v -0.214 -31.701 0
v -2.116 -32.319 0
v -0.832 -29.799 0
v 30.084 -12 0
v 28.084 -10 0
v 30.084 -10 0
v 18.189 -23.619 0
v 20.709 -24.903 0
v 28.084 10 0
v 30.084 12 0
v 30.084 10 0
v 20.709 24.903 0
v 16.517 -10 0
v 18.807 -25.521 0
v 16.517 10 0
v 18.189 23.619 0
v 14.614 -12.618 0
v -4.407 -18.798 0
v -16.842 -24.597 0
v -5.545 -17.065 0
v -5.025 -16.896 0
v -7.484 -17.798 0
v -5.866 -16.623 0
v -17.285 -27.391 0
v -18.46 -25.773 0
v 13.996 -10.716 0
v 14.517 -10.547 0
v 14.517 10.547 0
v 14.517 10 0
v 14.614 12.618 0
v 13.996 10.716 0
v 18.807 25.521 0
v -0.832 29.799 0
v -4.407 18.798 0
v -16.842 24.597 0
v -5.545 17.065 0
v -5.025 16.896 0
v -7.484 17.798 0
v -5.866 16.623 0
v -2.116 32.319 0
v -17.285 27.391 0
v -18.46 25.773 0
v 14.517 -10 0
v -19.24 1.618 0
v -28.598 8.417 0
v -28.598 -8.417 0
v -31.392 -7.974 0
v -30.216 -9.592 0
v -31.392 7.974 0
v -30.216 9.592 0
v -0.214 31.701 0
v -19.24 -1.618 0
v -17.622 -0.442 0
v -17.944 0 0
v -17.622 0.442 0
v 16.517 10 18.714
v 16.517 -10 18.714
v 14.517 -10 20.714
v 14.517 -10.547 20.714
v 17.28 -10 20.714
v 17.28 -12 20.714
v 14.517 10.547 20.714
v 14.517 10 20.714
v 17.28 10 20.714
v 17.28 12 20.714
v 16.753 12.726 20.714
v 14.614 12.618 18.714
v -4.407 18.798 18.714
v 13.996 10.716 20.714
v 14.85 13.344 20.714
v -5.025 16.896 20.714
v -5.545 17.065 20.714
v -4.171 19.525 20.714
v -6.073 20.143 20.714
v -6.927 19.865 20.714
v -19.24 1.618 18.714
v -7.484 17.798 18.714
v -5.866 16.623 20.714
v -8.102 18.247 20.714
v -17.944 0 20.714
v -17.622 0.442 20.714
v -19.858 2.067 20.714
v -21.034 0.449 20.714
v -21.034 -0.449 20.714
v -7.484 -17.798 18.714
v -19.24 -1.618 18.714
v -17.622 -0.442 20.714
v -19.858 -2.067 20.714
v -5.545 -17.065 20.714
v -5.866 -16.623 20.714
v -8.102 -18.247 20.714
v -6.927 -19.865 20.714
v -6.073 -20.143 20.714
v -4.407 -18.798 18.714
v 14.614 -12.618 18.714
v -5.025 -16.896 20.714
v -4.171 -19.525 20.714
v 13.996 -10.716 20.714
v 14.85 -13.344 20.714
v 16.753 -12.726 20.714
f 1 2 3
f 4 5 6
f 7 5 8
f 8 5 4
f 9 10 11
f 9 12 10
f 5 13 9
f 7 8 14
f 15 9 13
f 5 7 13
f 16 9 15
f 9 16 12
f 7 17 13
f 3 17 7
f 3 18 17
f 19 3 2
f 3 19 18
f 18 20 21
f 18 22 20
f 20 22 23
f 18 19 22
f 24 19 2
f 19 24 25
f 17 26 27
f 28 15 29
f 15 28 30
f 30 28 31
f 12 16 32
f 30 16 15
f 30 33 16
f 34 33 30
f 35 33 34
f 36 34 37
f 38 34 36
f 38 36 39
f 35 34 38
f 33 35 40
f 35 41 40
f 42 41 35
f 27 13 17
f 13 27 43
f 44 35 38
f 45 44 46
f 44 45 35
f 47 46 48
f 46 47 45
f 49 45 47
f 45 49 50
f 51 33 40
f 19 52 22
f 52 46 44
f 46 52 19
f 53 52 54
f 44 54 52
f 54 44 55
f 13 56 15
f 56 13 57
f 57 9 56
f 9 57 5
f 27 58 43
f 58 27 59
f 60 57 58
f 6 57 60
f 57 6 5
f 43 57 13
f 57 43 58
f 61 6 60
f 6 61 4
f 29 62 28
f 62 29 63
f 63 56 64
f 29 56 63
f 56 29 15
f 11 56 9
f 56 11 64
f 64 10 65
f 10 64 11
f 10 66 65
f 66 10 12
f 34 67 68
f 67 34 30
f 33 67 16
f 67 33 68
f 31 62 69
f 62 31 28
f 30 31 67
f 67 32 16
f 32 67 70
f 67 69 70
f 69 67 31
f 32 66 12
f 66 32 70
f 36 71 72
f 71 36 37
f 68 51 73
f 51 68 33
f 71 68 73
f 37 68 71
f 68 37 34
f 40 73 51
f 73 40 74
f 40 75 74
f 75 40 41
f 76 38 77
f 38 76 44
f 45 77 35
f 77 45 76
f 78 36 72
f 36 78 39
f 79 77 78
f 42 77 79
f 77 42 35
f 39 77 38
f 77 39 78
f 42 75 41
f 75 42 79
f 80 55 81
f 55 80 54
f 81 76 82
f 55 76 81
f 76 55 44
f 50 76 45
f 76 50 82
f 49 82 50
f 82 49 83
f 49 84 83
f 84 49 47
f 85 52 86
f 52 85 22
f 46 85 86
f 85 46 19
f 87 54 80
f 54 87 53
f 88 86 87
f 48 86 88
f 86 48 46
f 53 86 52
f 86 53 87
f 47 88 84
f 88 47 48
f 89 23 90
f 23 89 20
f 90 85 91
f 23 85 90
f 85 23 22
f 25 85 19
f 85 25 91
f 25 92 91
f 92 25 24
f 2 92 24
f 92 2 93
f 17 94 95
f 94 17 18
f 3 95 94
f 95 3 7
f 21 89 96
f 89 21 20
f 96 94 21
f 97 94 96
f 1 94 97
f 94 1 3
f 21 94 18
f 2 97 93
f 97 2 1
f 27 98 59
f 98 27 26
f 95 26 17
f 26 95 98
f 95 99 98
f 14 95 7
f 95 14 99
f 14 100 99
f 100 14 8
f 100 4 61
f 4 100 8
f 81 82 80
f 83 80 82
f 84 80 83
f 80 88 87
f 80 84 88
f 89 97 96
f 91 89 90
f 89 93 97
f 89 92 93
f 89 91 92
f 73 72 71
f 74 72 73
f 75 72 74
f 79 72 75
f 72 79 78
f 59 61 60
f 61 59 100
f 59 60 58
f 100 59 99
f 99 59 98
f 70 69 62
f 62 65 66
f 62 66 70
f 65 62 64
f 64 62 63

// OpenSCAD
interface_angle=31.72;
//connector_angle=90-interface_angle;

interface_width=20;
interface_height=22;

//groove on interface
interface_groove=2;//2;;

//groove on inside
inner_groove = 2;//2;

//groove on bottom
base_groove = 0;//2;

interface_spacing_width=2;//1;
sides=5;
sides_to_draw = sides;

//TODO
inner_wall_thickness = 0;//2
base_wall_thickness =0;

face_width=interface_width+(2*interface_spacing_width);
face_height=interface_height;//+(2*interface_spacing_height);//+(2*(interface_groove/tan(interface_angle)));

connector_height = face_height    * cos(interface_angle);
connector_width  = face_height     * sin(interface_angle);
echo("h/w", face_height, connector_width);
inner_radius     = (face_width/2) / sin(360/(sides*2));
inner_apothem    = (face_width/2) / tan(360/(sides*2));
//outer_radius   = inner_radius  + connector_width;
//outer_apothem  = inner_apothem + connector_width;
angle            = (360/sides);

//connector_thickness = connector_width+inner_wall_thickness;
//connector_depth = connector_height+interface_groove;
//groove_offset_y=connector_height-interface_groove;//-(cos(interface_angle)*interface_groove);
//groove_offset_x=0;//sin(interface_angle)*interface_groove;

//translate([-15,0,0])
connector();	


module connector(){
difference(){							
	for (i=[0:sides_to_draw-1]){
		rotate([0,0,i*angle]){	
			translate([/*inner_wall_thickness+*/inner_apothem,-face_width/2,0]){
        	      
				union(){
										strut_interface();
										translate([0, 0, 0]){
											color([0,1,0])channel();	
										}
										translate([0, interface_width+interface_spacing_width, 0]){
											color([0,0,1])channel();
										}
									corner_bevel();
								}
							
								//translate([connector_width-(interface_groove/tan(interface_angle)),0,0])rotate([0,-interface_angle,0])color([0,0,1])cube([1.5,20,20]);
			}
		}
	}
	translate([-50,-50,connector_height+2])cube([100,100,2]);

}
}

module strut_interface(){
	id = face_width;
	iw = 0;//inner_wall_thickness;
	ch = connector_height;
	cw = connector_width;
	echo("cw=",cw);
	echo("ch=",ch);
	echo("id=",id);
	echo("ih=",interface_height);
	bw = 0;//base_wall_thickness;
    //echo();
    interface_surface();
    inner_wall_surface();
    base_wall_surface();
    base_bevel_surface();
    module interface_surface(){
    	interfacePoints = [
        [  0,  0,  0 ],//0 
        [  0, id,  0 ],//1
				[ cw, id,  0 ],//2 
				[ cw,  0,  0 ],//3 	  
				[  0, id, ch ],//4
				[  0,  0, ch ]	//5
        ];     
        interfaceFaces = [
        [ 0, 1, 2, 3 ],
        [1,4,2],
        [ 1, 0, 5, 4 ],  
        [ 3, 5, 0 ],
        [ 3, 2, 4, 5 ],
        ];	
        polyhedron( interfacePoints, interfaceFaces );
    }
	
    module inner_wall_surface(){
    innerWallPoints=[
        [ -iw,  0,  0 ],
        [   0,  0,  0 ],
        [   0, id,  0 ],
        [ -iw, id,  0 ],
        [ -iw,  0, ch ],
        [   0,  0, ch ],
        [   0, id, ch ],
        [ -iw, id, ch ],
	]; 
	innerWallFaces = [
		[ 1, 0, 3, 2 ],
		[ 4, 0, 1, 5 ],
		[ 5, 1, 2, 6 ],
		[ 6, 2, 3, 7 ],
		[ 3, 0, 4, 7 ],
		[ 7, 4, 5, 6 ]
	]; 
    polyhedron( innerWallPoints, innerWallFaces );    
        }
    module base_wall_surface(){
    baseWallPoints =[
		[ 0,  0,   0 ],
		[  cw,  0,   0 ],
		[  cw, id,   0 ],
		[ 0, id,   0 ],
		[ 0,  0, -bw ],
		[  cw,  0, -bw ],
		[  cw, id, -bw ],
		[ 0, id, -bw ],
	];
	baseWallFaces =[
		[ 0, 1, 2, 3 ],
		[ 0, 4, 5, 1 ],
		[ 1, 5, 6, 2 ],
		[ 2, 6, 7, 3 ],
		[ 0, 3, 7, 4 ],
		[ 4, 7, 6, 5 ]		
	];
    polyhedron( baseWallPoints,  baseWallFaces );
    


    }
    module base_bevel_surface(){
    baseBevelPoints=[
        [ -iw,  0,  0 ],//0
        [   0,  0,  0 ],//1
        [   0, id,  0 ],//2
        [ -iw, id,  0 ],//3
        [   0,  0,  -bw ],//4
        [   0, id,  -bw ],//5
    ];
    baseBevelFaces=[
        [0,1,2,3],
        [2,1,4,5],
        [1,0,4],
        [3,2,5],
        [0,3,5,4]
    ];
    polyhedron( baseBevelPoints, baseBevelFaces );
    }
}




module channel(){
	  iw = 0;//inner_wall_thickness;
	  ch = connector_height;
    cw = connector_width;
	  bw = 0;//base_wall_thickness;
    bd = base_groove;
    id = interface_groove/tan(interface_angle);
		ih = cos(interface_angle)*interface_height;
    mw =interface_spacing_width;
   	fw = face_width-mw;
    ig=inner_groove;
		wh=bw-bd;
		bi=id/tan(90-interface_angle);
    
		mw=0;
		fw=interface_spacing_width;
//[ -14.63, 11.23, 18.94 ]		translate([connector_width,0,-2])cube([2,2,2]);
		translate([-inner_groove,0,-base_groove])cube([inner_groove,interface_spacing_width,base_groove]);
		
		translate([-inner_groove,0,connector_height])cube([inner_groove,interface_spacing_width,id]);
	
		if(inner_groove>0){
			inner_wall_cutout();
		}
		if(base_groove>0){
			base_wall_cutout();
		}
		if(interface_groove>0){
			interface_cutout();
    }
		
    module interface_cutout(){
			
			//echo((ch-id)/cos(interface_angle));
    	interfacePoints = [
            [ cw+bi, fw,  0  ],//2 ->0
            [ cw+bi, mw,  0  ],//3 - 1
            [  0,    fw,  ch+id ],//4 - 2
            [  0,    mw,  ch+id ],	//5 -3
            [ cw,    fw,  0  ],//2 ->0
            [ cw,    mw,  0  ],//3 - 1
            [  0,    fw,  ch ],//4 - 2
            [  0,    mw,  ch ]	//5 -3
        ];     
        interfaceFaces = [
            [ 1, 0, 2, 3 ],
            [ 7,6,4,5 ],
            [ 7,6,4,5 ],
            [1, 5, 4, 0],
            [2,6,7,3],
            [4,6,2,0],
            [7,5,1,3]
        ];	
				polyhedron( interfacePoints, interfaceFaces );
		}

    module inner_wall_cutout(){
			translate([-ig,mw,-bw])cube([ig,fw,bw+ch]);
    }
    module base_wall_cutout(){
			translate([-iw,mw,-bw-bd])cube([cw+iw,fw,bd]);
		} 
}
module _cutout(){
	  iw = inner_wall_thickness;
	  ch = connector_height;
    cw = connector_width;
	  bw = base_wall_thickness;
    bd = base_groove;
    id = interface_groove/sin(interface_angle);
		ih=cos(interface_angle)*interface_height;
    mw =interface_spacing_width;
   	fw = face_width-mw;
    ig=inner_groove;
		wh=bw-bd;
    union(){
		if(inner_groove>0){
			inner_wall_cutout();
		}
		if(base_groove>0){
			base_wall_cutout();
		}
		if(interface_groove>0){
			interface_cutout();
    }
		}
    module interface_cutout(){
        bi=id/tan(90-interface_angle);
			
			//echo((ch-id)/cos(interface_angle));
    	interfacePoints = [
            [ cw, fw,  0 ],//2 ->0
            [ cw,  mw,  0 ],//3 - 1
            [  0, fw, ch ],//4 - 2
            [  0,  mw, ch ],	//5 -3
            [ cw-bi, fw,  0 ],//2 ->0
            [ cw-bi,  mw,  0],//3 - 1
            [  0, fw, ch-id ],//4 - 2
            [  0,  mw, ch-id ]	//5 -3
        ];     
        interfaceFaces = [
            [ 1, 0, 2, 3 ],
            [ 7,6,4,5 ],
            [ 7,6,4,5 ],
            [1, 5, 4, 0],
            [2,6,7,3],
            [4,6,2,0],
            [7,5,1,3]
        ];	
        polyhedron( interfacePoints, interfaceFaces );
		}
	

    module inner_wall_cutout(){
        /*innerWallPoints=[
            [ -iw,  mw,  0 ],
            [ -ig,  mw,  0 ],
            [ -ig, fw,  0 ],
            [ -iw, fw,  0 ],
            [ -iw,  mw, ch ],
            [ -ig,  mw, ch ],
            [ -ig, fw, ch ],
            [ -iw, fw, ch ],
        ]; 
        
        innerWallFaces = [
            [ 1, 0, 3, 2 ],
            [ 4, 0, 1, 5 ],
            [ 5, 1, 2, 6 ],
            [ 6, 2, 3, 7 ],
            [ 3, 0, 4, 7 ],
            [ 7, 4, 5, 6 ]
        ];
        
//        polyhedron( innerWallPoints, innerWallFaces );   
*/
      			//translate([-iw,mw,-bw])
						translate([-iw,mw,-bw])cube([ig,interface_width,bw+ch]);
    }
    module base_wall_cutout(){
/*
    baseWallPoints =[
		[  0, mw, wh ],
		[ cw, mw, wh],
		[ cw, fw, wh],
		[  0, fw, wh ],
		[  0, mw, -bw ],
		[ cw, mw, -bw ],
		[ cw, fw, -bw ],
		[  0, fw, -bw ],
	];
	baseWallFaces =[
		[ 0, 1, 2, 3 ],
		[ 0, 4, 5, 1 ],
		[ 1, 5, 6, 2 ],
		[ 2, 6, 7, 3 ],
		[ 0, 3, 7, 4 ],
		[ 4, 7, 6, 5 ]		
	];
//    polyhedron( baseWallPoints,  baseWallFaces );*/
      			//translate([-iw,mw,-bw])
						//translate([0,0,-bw])
						translate([-iw,mw,-bw])cube([cw+iw,interface_width,bd]);
  


    }
 
}

module corner_bevel(){
		cw=connector_width;
		ch=connector_height+(interface_groove/tan(interface_angle));
		iw=0;//inner_wall_thickness;	
		bw=base_groove;
    id = interface_groove/tan(interface_angle);
		bi=id/tan(90-interface_angle);
		//outer_length=
//		cube([connector_width,10,10]);
	  ox = (cos(angle) * (iw+cw+bi))-iw ;
		oy = (sin(angle) * (iw+cw+bi)); 
		ix = (cos(angle) * iw) - iw;
		iy = (sin(angle) * iw);

		
		x1=cw+bi;
	
		bevelPoints = [
			[   0,   0,  0 ], //0 //interface base center
			[  x1,   0,  0 ], //1 //interface base edge ++++++++++++++++++++++++++++++++++==
			[  ox,  oy,  0 ], //2 //outer base edge
			[  ix,  iy,  0 ], //3 //outer base center
			[   0,   0, ch ], //4 //interface top center
			[  ix,  iy, ch ], //5 //outer top center
		]; 
    
		bevelFaces = [
			[1,0,3,2], //bottom
			[ 4, 0, 1], //inner interface side
			[ 2, 3 ,5],// opposite of interface
      [ 4, 1, 2, 5 ], //outside face
			[3, 0, 4, 5]//back
		];
		
        
        
        baseWallPoints = [            
            [   0,   0,  0 ], //0 //interface base center
            [  cw,   0,  0 ], //1 //interface base edge
            [  ox,  oy,  0 ], //2 //outer base edge
            [  ix,  iy,  0 ], //3 //outer base center
            [   0,   0,  -bw ], //0 //interface base center
            [  cw,   0,  -bw ], //1 //interface base edge
            [  ox,  oy,  -bw ], //2 //outer base edge
            [  ix,  iy,  -bw ], //3 //outer base center
        ]; 
		baseWallFaces = [
            [0,1,2,3],
            [0,4,5,1],
            [1,5,6,2],
            [2,6,7,3],
            [0,3,7,4],
            [7,6,5,4]
        ];
        
        innerWallPoints = [ 
			[ -iw,   0,  0 ], //0 //center base corner
            [   0,   0,  0 ], //1 //interface base center
            [  ix,  iy,  0 ], //4 //outer base center
			[ -iw,   0, ch ], //5 //center top corner
			[   0,   0, ch ], //6 //interface top center
			[  ix,  iy, ch ], //7 //outer top center
        ]; 
		innerWallFaces = [
        [1,0,2],
        [0,1,4,3],
        [1,2,5,4],
        [5,2,0,3],
        [5,3,4]
        ];
    
    baseBevelPoints=[
        [ -iw,   0,  0 ], //0 //center base corner
        [   0,   0,  0 ], //1 //interface base center
        [  ix,  iy,  0 ], //4 //outer base center
		[   0,   0,  -bw ], //1 //interface base center
        [  ix,  iy,  -bw ], //4 //outer base center
    ];
    
    baseBevelFaces=[
        [0,1,2],
        [0,3,1],
        [0,2,4],
        [2,1,3,4],
        [3,0,4]
    ];
    
    translate([0,face_width,0]){
        polyhedron( innerWallPoints,  innerWallFaces );	
	if(bw>0){
        polyhedron( baseWallPoints,  baseWallFaces );	
	}    
		polyhedron( bevelPoints, bevelFaces );
        polyhedron( baseBevelPoints, baseBevelFaces );
        
    }
}
